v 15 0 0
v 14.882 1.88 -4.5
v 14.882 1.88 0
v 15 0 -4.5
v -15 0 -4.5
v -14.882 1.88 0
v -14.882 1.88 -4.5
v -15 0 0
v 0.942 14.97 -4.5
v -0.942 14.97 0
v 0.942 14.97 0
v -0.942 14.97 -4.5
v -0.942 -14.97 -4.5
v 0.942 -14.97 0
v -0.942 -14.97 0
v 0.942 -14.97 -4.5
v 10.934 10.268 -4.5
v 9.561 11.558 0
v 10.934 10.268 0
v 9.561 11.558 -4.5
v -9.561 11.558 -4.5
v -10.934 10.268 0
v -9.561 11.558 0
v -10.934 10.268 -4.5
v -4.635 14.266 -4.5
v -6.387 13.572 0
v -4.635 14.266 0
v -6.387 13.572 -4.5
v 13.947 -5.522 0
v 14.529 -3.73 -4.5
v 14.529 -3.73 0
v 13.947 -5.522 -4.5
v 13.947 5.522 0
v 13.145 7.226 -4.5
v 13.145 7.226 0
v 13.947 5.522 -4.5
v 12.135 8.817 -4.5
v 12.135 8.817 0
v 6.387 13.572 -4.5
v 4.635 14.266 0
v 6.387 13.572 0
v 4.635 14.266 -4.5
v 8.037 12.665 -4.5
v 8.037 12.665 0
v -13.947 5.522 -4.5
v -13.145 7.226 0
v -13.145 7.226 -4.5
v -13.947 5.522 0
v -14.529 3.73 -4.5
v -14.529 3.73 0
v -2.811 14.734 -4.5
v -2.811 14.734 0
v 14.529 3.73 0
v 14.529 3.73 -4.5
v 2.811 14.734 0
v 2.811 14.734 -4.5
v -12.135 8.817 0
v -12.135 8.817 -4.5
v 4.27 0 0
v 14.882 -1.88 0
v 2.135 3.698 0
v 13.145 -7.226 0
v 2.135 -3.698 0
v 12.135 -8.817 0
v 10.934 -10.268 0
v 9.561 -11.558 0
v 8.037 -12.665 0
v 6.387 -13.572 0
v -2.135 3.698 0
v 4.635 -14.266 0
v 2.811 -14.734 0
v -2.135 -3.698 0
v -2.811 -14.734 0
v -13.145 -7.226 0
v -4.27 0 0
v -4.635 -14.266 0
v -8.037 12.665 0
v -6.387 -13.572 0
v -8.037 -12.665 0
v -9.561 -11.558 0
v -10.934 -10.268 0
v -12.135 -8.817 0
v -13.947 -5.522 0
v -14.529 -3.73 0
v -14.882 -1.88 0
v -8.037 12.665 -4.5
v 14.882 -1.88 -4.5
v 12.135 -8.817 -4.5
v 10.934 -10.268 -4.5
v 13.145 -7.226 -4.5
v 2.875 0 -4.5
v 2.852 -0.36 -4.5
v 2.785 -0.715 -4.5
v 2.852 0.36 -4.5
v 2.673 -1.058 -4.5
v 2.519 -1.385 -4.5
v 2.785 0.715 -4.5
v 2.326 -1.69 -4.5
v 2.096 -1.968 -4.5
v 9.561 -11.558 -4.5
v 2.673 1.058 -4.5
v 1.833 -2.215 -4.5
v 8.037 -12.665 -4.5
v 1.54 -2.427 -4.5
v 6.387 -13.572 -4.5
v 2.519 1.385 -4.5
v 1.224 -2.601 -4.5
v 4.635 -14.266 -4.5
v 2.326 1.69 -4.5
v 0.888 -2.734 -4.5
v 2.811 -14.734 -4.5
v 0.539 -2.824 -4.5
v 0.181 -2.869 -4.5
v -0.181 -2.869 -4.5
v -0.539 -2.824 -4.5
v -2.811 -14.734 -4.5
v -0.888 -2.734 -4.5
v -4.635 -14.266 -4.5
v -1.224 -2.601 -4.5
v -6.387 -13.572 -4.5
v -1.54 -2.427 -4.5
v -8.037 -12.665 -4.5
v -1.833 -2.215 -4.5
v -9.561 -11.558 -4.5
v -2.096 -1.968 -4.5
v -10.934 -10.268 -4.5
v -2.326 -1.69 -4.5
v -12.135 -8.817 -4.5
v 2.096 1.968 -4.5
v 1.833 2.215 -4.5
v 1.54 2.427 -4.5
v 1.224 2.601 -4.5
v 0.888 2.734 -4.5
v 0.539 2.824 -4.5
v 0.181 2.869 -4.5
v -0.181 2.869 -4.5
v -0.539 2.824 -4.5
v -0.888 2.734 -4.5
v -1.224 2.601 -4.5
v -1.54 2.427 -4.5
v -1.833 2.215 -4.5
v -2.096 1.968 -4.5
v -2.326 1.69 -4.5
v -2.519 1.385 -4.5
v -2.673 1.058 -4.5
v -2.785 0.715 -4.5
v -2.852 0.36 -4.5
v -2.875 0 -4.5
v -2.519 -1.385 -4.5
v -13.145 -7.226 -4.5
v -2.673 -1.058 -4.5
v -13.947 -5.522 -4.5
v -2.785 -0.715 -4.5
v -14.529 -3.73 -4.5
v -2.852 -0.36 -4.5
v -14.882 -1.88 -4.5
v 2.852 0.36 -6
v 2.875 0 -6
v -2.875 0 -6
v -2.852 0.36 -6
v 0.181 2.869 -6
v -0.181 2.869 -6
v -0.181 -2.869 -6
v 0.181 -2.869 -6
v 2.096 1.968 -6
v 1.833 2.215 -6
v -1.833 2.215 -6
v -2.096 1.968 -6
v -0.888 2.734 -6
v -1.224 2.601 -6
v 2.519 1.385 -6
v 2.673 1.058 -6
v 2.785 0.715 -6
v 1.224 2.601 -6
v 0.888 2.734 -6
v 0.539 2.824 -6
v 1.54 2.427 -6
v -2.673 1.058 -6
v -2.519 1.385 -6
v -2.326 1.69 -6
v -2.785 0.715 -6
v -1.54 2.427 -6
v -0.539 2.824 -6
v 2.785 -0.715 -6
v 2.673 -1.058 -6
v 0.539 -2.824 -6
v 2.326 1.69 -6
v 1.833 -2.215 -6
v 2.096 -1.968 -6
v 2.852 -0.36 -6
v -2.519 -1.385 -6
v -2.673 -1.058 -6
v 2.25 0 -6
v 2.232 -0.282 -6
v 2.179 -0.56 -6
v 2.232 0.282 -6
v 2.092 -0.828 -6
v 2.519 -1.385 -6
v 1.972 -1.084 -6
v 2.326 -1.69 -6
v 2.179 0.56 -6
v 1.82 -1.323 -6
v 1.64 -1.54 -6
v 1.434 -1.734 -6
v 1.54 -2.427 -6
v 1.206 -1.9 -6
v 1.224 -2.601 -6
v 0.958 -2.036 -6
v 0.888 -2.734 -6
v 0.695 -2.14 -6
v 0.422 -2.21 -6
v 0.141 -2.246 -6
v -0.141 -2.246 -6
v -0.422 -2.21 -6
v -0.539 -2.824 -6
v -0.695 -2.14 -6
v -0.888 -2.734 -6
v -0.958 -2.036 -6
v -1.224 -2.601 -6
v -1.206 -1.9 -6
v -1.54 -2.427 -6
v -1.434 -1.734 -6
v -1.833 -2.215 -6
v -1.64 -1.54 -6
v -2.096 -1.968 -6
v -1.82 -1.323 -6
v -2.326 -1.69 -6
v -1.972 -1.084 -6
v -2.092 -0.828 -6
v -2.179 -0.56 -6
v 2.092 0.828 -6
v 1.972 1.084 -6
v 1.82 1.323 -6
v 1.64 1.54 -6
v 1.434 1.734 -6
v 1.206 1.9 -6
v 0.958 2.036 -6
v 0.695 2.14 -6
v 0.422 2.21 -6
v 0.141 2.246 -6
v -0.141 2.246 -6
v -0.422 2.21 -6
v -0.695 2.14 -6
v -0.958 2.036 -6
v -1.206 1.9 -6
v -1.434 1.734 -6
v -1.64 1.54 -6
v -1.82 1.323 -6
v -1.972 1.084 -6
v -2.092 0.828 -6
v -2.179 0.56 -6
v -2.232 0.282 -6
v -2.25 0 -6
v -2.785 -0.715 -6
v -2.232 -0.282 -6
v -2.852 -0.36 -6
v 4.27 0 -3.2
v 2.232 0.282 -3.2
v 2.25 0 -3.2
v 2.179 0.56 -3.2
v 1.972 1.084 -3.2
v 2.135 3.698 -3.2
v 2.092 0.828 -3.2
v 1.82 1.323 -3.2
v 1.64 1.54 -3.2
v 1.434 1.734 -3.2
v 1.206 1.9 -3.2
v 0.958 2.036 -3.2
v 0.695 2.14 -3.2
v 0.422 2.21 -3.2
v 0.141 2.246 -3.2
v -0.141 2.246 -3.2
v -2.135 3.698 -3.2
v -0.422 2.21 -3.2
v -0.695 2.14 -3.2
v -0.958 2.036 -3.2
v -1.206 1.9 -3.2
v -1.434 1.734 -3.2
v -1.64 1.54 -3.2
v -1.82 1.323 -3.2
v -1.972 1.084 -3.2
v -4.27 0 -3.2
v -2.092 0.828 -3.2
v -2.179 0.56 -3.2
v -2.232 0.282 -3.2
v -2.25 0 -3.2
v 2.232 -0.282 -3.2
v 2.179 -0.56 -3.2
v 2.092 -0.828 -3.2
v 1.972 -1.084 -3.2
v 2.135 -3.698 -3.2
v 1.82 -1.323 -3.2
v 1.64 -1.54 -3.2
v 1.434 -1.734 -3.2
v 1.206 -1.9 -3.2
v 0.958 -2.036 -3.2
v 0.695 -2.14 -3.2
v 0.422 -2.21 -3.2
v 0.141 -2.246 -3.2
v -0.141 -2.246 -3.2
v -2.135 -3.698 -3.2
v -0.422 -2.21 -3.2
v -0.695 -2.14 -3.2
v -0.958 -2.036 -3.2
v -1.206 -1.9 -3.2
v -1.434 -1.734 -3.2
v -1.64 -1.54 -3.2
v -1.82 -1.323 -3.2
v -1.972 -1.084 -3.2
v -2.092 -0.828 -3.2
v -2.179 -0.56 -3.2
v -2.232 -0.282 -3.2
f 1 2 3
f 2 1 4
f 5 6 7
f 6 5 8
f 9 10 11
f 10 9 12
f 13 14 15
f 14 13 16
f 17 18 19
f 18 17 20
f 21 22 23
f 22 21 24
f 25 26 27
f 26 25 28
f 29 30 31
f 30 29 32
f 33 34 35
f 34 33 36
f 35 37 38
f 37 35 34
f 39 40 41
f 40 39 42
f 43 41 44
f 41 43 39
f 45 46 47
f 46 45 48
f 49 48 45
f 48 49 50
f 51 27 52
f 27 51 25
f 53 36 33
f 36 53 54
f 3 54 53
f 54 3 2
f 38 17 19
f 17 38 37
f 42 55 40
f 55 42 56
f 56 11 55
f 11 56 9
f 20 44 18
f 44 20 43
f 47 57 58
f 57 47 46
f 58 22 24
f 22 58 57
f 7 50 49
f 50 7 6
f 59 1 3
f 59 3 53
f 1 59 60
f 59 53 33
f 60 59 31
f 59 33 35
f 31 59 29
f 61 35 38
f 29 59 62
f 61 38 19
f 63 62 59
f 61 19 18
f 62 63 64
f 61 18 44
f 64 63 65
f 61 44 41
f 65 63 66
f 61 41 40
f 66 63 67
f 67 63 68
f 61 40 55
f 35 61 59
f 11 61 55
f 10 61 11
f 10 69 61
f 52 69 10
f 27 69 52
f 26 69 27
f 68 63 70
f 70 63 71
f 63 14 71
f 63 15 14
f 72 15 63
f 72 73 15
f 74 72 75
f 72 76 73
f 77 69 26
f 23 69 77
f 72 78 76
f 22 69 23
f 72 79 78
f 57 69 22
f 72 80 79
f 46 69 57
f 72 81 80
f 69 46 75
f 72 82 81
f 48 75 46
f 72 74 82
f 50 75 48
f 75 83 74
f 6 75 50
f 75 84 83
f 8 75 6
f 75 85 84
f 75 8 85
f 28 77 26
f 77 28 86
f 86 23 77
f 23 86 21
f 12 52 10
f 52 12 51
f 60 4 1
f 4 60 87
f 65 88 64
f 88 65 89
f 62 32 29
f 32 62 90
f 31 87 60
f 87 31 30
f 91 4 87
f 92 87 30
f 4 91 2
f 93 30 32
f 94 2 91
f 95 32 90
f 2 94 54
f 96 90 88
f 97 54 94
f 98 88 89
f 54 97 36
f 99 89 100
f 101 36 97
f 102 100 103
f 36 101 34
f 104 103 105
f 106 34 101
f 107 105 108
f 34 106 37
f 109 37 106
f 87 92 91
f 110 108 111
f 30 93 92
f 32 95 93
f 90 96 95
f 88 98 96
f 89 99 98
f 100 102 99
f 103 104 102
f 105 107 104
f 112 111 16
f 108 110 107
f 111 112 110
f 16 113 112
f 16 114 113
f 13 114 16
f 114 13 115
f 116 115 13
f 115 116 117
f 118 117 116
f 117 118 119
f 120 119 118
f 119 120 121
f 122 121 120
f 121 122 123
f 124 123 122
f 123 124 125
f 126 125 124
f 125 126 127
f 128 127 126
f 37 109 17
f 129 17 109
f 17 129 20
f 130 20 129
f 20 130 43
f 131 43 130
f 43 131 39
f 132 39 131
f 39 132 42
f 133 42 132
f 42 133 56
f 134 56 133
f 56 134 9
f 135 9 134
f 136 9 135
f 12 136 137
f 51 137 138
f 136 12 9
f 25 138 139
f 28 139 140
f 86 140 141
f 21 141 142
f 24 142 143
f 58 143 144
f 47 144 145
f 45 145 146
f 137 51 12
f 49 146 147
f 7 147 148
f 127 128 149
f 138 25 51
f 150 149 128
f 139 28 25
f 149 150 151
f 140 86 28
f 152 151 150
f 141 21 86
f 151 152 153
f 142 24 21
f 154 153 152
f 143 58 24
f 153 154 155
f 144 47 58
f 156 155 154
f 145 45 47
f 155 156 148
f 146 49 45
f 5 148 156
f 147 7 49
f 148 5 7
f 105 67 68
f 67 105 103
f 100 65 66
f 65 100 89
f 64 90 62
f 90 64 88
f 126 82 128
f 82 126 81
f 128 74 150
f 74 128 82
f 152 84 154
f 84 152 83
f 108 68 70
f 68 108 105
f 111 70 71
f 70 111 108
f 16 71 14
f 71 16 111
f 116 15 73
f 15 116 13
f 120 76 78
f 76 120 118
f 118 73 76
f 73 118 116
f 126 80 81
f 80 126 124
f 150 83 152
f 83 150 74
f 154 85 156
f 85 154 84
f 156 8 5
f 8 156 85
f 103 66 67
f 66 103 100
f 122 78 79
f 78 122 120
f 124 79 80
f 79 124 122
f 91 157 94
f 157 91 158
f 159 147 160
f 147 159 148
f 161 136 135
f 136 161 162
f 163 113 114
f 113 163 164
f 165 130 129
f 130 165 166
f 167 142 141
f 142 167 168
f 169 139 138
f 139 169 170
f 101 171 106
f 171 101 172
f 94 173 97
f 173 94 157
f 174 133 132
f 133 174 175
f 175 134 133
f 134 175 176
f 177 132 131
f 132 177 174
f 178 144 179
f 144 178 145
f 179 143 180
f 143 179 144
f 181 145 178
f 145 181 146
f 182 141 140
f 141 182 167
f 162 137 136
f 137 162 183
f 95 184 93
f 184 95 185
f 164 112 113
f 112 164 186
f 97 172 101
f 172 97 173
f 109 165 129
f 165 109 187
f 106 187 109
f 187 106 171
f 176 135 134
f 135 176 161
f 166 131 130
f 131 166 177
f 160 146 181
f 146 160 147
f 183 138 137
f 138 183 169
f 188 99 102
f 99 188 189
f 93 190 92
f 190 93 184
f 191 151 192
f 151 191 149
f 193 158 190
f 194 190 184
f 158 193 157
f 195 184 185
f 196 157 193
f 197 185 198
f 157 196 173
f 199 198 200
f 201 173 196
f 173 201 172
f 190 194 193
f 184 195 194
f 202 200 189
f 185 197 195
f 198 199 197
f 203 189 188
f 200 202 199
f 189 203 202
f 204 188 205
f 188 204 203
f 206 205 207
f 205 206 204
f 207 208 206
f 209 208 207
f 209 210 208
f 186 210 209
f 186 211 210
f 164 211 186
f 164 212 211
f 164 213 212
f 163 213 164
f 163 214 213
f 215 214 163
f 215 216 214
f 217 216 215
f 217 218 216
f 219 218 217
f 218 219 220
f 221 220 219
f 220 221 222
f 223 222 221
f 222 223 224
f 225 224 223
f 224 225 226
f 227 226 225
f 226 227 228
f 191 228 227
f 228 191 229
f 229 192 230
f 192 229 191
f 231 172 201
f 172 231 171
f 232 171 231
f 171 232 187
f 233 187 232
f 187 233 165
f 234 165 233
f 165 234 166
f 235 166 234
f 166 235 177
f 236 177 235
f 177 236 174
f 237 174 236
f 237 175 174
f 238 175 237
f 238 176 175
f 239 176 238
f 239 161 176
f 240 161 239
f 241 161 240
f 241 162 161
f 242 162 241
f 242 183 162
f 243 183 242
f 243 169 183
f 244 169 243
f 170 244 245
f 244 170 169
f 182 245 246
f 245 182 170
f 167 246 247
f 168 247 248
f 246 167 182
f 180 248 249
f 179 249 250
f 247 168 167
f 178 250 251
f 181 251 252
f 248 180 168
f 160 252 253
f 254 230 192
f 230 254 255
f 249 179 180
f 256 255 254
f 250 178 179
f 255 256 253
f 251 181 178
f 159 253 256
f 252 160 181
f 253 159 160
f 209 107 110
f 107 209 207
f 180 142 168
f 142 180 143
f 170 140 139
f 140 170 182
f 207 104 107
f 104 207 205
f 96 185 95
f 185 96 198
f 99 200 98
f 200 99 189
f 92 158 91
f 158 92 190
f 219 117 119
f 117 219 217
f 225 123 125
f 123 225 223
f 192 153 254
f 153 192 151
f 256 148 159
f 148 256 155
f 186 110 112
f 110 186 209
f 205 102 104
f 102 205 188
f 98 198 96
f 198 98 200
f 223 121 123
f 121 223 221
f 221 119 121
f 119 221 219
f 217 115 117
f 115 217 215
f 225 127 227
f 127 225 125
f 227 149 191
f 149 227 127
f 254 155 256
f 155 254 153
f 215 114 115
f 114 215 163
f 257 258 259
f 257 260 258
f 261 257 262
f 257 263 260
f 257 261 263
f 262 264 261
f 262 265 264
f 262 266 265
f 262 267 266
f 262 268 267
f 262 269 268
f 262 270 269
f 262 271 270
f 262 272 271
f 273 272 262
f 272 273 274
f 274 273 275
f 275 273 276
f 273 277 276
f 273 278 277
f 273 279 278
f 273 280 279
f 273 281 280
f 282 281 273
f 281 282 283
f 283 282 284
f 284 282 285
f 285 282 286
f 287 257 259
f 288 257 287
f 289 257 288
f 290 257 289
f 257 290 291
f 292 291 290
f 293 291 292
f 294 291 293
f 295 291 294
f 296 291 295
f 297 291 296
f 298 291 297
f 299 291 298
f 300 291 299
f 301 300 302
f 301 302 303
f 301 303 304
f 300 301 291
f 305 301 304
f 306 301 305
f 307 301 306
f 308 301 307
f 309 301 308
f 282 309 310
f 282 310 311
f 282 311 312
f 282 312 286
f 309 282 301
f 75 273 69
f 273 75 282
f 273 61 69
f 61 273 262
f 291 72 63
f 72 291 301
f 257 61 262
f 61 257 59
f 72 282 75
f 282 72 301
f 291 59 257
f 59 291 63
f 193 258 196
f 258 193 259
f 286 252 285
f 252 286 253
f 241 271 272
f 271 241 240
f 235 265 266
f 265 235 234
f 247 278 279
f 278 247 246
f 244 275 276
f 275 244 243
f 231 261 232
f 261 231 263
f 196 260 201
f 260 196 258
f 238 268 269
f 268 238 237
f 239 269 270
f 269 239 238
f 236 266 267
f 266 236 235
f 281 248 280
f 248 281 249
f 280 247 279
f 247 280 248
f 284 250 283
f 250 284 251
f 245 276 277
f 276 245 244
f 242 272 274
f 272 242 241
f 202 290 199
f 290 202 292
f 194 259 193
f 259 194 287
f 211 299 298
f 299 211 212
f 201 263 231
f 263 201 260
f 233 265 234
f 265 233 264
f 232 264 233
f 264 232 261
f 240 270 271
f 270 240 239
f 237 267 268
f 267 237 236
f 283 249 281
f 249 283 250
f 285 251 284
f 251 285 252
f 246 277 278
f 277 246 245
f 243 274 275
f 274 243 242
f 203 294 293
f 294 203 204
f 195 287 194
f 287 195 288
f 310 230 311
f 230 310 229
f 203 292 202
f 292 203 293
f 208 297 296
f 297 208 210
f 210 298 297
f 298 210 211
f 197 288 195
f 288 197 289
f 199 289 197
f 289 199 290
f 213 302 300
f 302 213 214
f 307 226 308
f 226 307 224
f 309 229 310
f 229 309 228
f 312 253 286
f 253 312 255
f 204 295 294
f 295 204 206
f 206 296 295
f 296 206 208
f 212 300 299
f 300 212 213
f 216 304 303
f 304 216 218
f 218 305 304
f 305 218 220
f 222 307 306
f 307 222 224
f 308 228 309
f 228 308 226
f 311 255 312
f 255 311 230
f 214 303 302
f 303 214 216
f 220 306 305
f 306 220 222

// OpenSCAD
$fn = 50;


difference() {
	union() {
		translate(v = [0, 0, -4.5000000000]) {
			cylinder(h = 4.5000000000, r = 15.0000000000);
		}
		translate(v = [0, 0, -6.0000000000]) {
			cylinder(h = 6, r = 2.8750000000);
		}
	}
	union() {
		translate(v = [0, 0, 0]) {
			rotate(a = [0, 0, 0]) {
				difference() {
					union() {
						translate(v = [0, 0, -3.2000000000]) {
							linear_extrude(height = 3.2000000000) {
								polygon(points = [[4.2698000000, 0.0000000000], [2.1349000000, 3.6977552691], [-2.1349000000, 3.6977552691], [-4.2698000000, 0.0000000000], [-2.1349000000, -3.6977552691], [2.1349000000, -3.6977552691]]);
							}
						}
					}
					union();
				}
			}
		}
		#translate(v = [0, 0, -100.0000000000]) {
			cylinder(h = 200, r = 2.2500000000);
		}
	}
}
